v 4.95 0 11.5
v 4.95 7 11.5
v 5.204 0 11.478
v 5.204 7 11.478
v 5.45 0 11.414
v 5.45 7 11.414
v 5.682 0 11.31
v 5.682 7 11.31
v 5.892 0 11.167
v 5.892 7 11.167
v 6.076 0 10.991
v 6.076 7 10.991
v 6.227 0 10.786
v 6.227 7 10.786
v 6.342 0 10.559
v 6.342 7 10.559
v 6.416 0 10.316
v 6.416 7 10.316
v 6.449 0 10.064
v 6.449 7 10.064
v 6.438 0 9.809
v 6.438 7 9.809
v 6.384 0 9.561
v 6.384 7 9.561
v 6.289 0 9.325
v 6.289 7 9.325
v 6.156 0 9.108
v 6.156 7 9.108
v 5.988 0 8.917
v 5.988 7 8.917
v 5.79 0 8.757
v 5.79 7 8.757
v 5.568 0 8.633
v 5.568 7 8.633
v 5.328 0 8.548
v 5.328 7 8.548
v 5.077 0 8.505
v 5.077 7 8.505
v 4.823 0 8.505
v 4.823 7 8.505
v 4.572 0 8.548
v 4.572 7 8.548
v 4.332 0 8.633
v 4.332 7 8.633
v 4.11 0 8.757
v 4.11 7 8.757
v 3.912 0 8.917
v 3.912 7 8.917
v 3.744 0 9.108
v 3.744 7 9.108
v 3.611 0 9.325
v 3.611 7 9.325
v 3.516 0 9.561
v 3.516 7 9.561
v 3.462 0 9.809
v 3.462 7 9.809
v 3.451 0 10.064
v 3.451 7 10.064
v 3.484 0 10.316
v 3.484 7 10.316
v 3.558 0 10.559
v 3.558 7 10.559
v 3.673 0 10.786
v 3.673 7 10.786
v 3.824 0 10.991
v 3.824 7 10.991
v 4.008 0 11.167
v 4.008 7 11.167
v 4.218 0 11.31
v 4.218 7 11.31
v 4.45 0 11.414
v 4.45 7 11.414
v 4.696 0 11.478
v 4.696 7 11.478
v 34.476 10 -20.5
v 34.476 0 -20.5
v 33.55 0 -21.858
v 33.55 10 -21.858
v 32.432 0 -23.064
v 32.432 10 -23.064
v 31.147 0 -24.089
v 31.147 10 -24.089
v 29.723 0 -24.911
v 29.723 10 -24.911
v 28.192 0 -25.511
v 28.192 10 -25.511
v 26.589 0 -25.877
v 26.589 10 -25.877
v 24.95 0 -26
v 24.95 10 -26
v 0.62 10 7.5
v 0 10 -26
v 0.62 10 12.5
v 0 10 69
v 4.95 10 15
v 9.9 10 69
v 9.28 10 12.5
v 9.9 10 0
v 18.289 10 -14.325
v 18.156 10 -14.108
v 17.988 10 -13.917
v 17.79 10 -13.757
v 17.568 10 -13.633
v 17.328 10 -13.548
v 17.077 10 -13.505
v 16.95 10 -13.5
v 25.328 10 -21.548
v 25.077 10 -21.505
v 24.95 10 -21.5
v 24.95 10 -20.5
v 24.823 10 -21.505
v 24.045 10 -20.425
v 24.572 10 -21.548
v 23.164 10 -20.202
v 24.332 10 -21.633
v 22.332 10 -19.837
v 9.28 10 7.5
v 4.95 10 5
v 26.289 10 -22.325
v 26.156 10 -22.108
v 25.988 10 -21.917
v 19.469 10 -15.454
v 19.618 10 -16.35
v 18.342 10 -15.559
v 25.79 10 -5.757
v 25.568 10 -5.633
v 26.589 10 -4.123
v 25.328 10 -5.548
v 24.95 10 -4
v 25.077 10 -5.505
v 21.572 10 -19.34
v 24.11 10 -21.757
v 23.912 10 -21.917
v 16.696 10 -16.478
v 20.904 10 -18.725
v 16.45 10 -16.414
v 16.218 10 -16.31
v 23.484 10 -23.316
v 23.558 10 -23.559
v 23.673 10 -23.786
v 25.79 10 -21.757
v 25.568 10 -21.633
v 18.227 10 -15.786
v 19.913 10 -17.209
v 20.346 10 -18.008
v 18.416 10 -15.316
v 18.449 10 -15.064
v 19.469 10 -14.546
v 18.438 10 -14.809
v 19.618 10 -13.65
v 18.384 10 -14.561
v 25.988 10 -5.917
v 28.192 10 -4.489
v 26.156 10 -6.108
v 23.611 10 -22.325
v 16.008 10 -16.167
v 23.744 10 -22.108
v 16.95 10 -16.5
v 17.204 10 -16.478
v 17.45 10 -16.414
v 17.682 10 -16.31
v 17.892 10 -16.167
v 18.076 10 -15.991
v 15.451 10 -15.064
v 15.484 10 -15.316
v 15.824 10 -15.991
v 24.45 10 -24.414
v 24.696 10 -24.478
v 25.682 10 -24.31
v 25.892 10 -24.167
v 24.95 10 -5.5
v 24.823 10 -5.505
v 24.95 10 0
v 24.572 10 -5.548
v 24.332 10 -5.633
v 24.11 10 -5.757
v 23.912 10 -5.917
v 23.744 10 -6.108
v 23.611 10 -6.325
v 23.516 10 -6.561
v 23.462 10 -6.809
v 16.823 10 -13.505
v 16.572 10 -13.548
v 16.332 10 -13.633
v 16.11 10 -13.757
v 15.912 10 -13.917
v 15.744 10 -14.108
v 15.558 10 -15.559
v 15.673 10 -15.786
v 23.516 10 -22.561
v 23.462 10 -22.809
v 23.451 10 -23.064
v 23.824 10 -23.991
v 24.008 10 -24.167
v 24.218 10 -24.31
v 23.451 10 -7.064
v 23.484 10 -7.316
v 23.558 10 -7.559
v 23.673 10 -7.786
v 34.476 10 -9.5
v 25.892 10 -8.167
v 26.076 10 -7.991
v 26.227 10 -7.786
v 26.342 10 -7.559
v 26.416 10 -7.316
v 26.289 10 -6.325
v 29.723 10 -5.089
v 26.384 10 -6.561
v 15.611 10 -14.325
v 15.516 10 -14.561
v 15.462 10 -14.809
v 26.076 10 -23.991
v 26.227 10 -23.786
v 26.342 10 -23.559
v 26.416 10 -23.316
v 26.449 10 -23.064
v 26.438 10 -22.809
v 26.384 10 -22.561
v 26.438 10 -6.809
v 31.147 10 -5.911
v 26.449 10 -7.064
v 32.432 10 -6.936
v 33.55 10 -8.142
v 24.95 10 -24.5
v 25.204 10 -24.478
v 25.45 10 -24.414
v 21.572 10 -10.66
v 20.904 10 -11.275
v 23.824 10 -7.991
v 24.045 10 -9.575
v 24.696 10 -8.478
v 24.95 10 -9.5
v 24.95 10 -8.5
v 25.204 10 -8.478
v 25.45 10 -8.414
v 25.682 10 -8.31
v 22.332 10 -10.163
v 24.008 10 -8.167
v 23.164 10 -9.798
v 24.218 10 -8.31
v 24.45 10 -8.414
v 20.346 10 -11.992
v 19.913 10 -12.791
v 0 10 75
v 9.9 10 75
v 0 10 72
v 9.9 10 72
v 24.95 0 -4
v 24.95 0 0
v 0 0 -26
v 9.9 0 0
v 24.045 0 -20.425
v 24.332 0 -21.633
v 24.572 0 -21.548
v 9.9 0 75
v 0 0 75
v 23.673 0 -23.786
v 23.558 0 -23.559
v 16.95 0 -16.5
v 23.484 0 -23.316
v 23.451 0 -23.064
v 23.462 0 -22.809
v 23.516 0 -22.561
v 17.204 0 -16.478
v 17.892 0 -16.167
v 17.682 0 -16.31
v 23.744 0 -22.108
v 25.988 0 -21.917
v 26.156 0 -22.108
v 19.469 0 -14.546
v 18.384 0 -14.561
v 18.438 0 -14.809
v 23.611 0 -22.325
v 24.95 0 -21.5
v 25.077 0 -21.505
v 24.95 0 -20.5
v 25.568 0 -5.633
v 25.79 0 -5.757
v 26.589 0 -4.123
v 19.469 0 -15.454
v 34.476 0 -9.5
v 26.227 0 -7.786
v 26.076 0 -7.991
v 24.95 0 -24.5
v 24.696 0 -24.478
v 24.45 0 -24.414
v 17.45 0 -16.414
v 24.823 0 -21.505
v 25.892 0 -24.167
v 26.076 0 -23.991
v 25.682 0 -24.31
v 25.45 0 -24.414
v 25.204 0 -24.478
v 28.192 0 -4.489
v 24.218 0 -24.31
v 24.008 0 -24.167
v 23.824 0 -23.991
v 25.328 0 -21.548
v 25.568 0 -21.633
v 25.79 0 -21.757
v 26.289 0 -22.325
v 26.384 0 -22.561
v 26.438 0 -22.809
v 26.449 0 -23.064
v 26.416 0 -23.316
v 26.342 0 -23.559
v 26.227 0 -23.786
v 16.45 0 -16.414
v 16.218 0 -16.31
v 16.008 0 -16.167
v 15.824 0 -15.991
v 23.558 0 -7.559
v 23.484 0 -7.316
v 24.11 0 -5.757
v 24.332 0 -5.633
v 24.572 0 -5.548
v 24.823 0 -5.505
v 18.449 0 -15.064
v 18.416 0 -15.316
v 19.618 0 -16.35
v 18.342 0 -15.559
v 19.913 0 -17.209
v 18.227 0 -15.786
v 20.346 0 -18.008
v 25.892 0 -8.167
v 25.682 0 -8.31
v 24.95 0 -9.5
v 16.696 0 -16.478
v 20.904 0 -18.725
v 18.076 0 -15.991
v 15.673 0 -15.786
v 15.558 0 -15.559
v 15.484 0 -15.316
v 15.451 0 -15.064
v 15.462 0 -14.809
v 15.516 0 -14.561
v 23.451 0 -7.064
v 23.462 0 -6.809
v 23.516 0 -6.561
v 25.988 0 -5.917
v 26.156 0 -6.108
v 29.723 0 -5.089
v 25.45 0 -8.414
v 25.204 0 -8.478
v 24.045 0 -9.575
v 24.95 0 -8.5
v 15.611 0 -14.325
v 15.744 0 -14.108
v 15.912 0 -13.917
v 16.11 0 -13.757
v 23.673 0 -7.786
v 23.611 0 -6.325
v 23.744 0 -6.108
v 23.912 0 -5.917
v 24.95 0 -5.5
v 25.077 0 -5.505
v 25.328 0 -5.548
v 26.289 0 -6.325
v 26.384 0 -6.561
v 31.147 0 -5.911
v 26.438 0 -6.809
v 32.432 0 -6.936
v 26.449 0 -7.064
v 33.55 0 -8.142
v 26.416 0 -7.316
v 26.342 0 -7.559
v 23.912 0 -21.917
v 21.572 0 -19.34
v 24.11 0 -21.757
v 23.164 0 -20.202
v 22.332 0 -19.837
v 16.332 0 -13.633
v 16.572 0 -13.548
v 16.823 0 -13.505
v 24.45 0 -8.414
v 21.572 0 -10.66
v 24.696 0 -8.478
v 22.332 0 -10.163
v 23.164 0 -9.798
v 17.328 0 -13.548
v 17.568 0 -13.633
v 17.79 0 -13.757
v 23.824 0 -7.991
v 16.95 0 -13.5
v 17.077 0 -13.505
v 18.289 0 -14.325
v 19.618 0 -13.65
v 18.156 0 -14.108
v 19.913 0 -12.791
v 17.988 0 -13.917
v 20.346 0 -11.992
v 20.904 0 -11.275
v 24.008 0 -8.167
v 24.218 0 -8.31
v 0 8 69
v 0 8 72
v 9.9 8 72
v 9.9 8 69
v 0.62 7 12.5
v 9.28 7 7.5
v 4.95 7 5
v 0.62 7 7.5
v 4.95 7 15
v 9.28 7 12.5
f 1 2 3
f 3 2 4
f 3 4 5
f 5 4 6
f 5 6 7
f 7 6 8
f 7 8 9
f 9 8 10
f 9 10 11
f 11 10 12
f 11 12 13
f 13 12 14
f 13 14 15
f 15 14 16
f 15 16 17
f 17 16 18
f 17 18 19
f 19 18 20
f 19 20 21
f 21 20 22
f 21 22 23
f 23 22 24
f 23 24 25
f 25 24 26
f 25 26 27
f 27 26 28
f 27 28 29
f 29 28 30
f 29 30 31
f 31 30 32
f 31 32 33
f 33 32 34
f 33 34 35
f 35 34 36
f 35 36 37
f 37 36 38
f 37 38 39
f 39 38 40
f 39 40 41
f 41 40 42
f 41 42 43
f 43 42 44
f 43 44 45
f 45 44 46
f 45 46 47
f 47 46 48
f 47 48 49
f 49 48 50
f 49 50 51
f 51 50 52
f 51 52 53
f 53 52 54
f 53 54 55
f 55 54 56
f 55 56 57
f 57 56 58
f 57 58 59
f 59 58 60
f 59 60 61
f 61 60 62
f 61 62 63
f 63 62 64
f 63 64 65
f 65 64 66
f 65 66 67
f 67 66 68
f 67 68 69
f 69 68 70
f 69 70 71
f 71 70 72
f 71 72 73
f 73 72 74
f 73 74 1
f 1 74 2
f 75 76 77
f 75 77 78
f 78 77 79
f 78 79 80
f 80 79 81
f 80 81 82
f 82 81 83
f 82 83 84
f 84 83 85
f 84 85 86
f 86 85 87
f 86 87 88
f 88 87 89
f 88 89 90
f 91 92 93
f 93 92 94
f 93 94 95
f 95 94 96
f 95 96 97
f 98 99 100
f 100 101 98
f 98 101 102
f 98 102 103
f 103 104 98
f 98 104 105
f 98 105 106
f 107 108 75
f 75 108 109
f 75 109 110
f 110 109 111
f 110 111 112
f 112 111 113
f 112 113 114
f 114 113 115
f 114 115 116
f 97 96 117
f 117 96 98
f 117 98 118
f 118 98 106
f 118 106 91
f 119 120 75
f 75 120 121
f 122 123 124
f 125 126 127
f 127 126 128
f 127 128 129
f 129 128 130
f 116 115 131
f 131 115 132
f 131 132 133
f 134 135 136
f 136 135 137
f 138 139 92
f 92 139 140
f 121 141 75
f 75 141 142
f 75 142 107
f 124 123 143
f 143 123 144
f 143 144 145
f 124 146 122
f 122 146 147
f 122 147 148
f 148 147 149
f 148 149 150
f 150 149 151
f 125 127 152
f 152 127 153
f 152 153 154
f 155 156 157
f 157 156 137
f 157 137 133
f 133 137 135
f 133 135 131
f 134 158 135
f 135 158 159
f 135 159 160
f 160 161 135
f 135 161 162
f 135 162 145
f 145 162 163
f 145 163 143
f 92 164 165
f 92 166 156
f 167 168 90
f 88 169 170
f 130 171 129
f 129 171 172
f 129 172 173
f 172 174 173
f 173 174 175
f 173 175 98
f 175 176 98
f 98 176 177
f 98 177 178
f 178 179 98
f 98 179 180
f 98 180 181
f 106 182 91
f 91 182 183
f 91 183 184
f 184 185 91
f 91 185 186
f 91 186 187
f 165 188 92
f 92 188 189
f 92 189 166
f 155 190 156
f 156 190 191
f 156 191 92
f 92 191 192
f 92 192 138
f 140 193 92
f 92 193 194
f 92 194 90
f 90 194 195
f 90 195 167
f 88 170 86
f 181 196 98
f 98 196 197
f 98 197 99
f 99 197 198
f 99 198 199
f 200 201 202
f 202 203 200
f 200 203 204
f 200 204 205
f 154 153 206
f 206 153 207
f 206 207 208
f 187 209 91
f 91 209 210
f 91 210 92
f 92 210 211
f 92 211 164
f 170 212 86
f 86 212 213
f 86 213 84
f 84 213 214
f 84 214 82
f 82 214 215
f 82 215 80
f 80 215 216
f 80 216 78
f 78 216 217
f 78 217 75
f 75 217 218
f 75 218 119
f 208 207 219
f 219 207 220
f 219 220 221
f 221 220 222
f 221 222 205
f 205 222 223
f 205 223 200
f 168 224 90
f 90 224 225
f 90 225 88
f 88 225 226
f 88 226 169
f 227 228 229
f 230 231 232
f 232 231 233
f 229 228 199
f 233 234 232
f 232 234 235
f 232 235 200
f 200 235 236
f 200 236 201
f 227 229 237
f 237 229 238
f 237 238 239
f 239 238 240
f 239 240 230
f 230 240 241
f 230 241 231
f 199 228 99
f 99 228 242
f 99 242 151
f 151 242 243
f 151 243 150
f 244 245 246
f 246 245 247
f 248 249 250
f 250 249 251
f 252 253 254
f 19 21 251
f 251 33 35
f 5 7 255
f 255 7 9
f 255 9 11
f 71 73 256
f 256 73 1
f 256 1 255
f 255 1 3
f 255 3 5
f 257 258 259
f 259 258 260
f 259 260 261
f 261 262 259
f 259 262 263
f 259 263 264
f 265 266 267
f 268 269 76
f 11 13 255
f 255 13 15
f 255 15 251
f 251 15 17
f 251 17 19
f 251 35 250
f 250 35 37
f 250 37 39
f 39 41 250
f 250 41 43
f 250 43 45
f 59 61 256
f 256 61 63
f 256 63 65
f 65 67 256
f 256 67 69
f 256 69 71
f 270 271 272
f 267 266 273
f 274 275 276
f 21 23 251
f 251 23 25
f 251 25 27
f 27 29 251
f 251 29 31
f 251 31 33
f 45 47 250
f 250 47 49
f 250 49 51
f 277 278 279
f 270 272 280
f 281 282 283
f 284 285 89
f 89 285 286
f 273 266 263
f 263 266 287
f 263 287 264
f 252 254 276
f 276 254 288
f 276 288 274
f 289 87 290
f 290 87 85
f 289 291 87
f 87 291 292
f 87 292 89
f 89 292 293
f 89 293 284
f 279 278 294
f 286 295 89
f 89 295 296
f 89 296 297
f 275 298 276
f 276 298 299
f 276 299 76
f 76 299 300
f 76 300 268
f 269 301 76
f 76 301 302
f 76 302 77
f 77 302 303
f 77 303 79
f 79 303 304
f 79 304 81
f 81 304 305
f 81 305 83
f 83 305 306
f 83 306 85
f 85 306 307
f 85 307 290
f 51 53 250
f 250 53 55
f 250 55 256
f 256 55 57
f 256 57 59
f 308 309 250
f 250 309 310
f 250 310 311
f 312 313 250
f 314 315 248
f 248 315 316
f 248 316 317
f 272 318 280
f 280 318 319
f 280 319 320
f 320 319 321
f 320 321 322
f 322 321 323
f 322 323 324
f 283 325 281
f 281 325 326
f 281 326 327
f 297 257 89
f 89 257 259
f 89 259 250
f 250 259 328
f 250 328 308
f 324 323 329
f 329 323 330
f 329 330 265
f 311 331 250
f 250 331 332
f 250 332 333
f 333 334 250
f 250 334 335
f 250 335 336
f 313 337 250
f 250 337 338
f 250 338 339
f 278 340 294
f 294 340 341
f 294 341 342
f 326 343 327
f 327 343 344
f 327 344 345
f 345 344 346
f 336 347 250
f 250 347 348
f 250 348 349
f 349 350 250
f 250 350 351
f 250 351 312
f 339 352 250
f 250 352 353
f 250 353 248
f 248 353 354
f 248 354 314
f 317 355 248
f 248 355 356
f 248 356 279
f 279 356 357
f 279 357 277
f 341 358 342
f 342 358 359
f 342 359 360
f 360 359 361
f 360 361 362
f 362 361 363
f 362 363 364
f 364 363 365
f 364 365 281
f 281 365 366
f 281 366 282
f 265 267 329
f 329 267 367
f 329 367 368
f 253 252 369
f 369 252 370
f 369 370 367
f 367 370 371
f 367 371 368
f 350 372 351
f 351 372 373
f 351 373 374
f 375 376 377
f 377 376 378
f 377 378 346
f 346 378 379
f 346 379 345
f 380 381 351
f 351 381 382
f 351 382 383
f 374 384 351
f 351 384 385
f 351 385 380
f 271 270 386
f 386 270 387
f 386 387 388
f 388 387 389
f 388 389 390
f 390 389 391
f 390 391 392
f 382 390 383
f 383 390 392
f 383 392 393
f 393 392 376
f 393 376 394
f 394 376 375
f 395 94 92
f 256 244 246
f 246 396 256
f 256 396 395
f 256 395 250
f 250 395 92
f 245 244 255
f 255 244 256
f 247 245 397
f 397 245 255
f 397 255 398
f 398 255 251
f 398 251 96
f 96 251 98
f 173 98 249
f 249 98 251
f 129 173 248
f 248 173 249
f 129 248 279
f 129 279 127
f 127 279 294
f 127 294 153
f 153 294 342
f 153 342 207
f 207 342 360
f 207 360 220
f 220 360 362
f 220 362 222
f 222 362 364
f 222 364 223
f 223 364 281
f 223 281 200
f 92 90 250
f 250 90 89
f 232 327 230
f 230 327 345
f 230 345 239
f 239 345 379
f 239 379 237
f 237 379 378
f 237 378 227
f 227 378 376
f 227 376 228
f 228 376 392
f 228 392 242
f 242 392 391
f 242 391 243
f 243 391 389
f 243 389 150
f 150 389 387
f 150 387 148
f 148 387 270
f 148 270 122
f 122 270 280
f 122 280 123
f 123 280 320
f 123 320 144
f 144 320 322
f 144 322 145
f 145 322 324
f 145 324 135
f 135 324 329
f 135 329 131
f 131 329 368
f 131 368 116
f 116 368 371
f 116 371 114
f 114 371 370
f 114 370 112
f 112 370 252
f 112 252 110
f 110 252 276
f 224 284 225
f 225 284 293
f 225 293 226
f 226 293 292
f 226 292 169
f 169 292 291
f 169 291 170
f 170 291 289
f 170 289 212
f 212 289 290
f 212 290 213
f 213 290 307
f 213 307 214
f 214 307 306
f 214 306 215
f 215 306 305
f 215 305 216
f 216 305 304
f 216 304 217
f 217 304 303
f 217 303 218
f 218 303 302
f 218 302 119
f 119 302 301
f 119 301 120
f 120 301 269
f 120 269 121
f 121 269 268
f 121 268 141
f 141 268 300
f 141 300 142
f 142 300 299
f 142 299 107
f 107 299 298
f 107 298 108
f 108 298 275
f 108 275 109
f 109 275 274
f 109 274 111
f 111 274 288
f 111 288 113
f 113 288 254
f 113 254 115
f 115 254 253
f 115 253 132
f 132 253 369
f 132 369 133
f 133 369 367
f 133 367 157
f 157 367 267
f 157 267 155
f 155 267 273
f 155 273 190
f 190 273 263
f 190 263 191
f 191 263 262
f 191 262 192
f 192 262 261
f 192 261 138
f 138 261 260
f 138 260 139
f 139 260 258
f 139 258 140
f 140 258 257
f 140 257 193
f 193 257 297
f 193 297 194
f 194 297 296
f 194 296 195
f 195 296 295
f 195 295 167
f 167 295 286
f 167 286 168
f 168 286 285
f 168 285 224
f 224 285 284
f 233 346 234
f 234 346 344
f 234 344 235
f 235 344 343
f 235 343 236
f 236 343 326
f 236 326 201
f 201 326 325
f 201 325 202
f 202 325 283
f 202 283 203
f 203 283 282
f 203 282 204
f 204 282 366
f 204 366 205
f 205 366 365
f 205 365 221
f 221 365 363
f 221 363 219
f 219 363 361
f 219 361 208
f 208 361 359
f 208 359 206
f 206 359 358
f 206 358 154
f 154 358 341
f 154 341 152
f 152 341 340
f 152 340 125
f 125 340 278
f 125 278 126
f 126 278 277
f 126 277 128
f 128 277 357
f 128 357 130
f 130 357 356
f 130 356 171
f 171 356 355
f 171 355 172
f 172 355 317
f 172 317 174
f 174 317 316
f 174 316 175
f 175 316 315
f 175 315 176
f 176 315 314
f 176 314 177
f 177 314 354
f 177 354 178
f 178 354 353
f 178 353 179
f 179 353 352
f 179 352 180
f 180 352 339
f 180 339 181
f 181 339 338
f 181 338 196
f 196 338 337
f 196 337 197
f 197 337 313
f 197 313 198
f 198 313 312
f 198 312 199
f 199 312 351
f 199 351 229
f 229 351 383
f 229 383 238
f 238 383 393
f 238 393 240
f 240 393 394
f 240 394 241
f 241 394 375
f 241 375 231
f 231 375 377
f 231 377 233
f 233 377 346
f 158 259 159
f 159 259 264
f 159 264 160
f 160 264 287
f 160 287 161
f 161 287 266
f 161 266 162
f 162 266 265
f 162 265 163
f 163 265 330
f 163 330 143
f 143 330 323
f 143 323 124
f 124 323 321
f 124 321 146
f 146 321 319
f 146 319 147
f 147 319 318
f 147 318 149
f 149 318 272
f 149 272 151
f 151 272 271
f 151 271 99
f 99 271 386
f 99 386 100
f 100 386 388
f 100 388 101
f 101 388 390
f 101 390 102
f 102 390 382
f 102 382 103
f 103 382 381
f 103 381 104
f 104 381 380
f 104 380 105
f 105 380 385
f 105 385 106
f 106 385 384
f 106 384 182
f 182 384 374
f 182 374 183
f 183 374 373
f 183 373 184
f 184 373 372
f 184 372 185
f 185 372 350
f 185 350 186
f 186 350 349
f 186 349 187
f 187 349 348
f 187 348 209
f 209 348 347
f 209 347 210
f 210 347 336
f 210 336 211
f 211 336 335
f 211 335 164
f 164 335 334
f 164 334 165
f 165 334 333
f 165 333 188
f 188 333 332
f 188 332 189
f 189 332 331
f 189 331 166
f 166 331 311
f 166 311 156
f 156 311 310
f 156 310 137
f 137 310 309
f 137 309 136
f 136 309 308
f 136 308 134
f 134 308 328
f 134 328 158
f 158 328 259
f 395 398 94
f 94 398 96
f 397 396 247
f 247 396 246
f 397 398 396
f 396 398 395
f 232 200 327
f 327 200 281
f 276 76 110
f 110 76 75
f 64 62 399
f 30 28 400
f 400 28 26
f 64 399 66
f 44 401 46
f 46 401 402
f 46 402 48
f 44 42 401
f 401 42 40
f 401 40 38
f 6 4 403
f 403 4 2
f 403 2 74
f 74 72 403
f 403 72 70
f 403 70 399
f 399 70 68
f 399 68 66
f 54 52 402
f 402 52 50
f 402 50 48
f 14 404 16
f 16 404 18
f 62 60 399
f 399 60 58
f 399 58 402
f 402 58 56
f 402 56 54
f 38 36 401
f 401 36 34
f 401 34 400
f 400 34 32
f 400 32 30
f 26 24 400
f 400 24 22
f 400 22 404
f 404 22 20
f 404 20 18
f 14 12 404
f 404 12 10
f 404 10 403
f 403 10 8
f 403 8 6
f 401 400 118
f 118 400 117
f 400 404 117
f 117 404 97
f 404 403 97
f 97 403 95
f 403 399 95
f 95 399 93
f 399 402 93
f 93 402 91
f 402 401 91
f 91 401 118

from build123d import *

# Parameters (mm, degrees)
SKETCH1_R           = 5.5
SKETCH1_R_2         = 1.5
BOSS_EXTRUDE1_DEPTH = 10
SKETCH2_W           = 9.9
SKETCH2_H           = 3
CUT_EXTRUDE1_DEPTH  = 2
SKETCH3_W           = 20.106266241
SKETCH3_H           = 11
CUT_EXTRUDE2_DEPTH  = 10
SKETCH4_R           = 1.5
CUT_EXTRUDE3_DEPTH  = 10
CUT_EXTRUDE4_DEPTH  = 3


with BuildPart() as part:
    # Sketch1 → Boss-Extrude1 (new body)
    with BuildSketch(Plane(origin=(0, 0, 0), x_dir=(1, 0, 0), z_dir=(0, 1, 0))):
        with BuildLine():
            Line((0, 0), (0, -75))
            Line((0, -75), (9.9, -75))
            Line((9.9, -75), (9.9, 0))
            Line((9.9, 0), (24.95, 0))
            Line((24.95, 0), (24.95, 4))
            ThreePointArc((24.95, 4), (35.95, 15), (24.95, 26))
            Line((24.95, 26), (0, 26))
            Line((0, 26), (0, 0))
        make_face()
        with Locations(Location((24.95, 15, 0), (0, 0, 270))):
            Circle(SKETCH1_R, mode=Mode.SUBTRACT)
        with Locations(Location((24.95, 23, 0), (0, 0, 270))):
            Circle(SKETCH1_R_2, mode=Mode.SUBTRACT)
        with Locations(Location((24.95, 7, 0), (0, 0, 270))):
            Circle(SKETCH1_R_2, mode=Mode.SUBTRACT)
        with Locations(Location((16.95, 15, 0), (0, 0, 270))):
            Circle(SKETCH1_R_2, mode=Mode.SUBTRACT)
    extrude(amount=BOSS_EXTRUDE1_DEPTH)

    # Sketch2 → Cut-Extrude1 (cut)
    with BuildSketch(Plane(origin=(0, 10, 0), x_dir=(1, 0, 0), z_dir=(0, 1, 0))):
        with Locations((4.95, -70.5)):
            Rectangle(SKETCH2_W, SKETCH2_H)
    extrude(amount=-CUT_EXTRUDE1_DEPTH, mode=Mode.SUBTRACT)

    # Sketch3 → Cut-Extrude2 (cut)
    with BuildSketch(Plane(origin=(0, 10, 0), x_dir=(1, 0, 0), z_dir=(0, 1, 0))):
        with Locations((35.003133121, 15)):
            Rectangle(SKETCH3_W, SKETCH3_H)
    extrude(amount=-CUT_EXTRUDE2_DEPTH, mode=Mode.SUBTRACT)

    # Sketch4 → Cut-Extrude3 (cut)
    with BuildSketch(Plane(origin=(0, 10, 0), x_dir=(1, 0, 0), z_dir=(0, 1, 0))):
        with Locations(Location((4.95, -10, 0), (0, 0, 270))):
            Circle(SKETCH4_R)
    extrude(amount=-CUT_EXTRUDE3_DEPTH, mode=Mode.SUBTRACT)

    # Sketch5 → Cut-Extrude4 (cut)
    with BuildSketch(Plane(origin=(0, 10, 0), x_dir=(1, 0, 0), z_dir=(0, 1, 0))):
        Polygon((4.95, -5), (0.619872981, -7.5), (0.619872981, -12.5), (4.95, -15), (9.280127019, -12.5), (9.280127019, -7.5), align=None)
    extrude(amount=-CUT_EXTRUDE4_DEPTH, mode=Mode.SUBTRACT)


solid = part.part
